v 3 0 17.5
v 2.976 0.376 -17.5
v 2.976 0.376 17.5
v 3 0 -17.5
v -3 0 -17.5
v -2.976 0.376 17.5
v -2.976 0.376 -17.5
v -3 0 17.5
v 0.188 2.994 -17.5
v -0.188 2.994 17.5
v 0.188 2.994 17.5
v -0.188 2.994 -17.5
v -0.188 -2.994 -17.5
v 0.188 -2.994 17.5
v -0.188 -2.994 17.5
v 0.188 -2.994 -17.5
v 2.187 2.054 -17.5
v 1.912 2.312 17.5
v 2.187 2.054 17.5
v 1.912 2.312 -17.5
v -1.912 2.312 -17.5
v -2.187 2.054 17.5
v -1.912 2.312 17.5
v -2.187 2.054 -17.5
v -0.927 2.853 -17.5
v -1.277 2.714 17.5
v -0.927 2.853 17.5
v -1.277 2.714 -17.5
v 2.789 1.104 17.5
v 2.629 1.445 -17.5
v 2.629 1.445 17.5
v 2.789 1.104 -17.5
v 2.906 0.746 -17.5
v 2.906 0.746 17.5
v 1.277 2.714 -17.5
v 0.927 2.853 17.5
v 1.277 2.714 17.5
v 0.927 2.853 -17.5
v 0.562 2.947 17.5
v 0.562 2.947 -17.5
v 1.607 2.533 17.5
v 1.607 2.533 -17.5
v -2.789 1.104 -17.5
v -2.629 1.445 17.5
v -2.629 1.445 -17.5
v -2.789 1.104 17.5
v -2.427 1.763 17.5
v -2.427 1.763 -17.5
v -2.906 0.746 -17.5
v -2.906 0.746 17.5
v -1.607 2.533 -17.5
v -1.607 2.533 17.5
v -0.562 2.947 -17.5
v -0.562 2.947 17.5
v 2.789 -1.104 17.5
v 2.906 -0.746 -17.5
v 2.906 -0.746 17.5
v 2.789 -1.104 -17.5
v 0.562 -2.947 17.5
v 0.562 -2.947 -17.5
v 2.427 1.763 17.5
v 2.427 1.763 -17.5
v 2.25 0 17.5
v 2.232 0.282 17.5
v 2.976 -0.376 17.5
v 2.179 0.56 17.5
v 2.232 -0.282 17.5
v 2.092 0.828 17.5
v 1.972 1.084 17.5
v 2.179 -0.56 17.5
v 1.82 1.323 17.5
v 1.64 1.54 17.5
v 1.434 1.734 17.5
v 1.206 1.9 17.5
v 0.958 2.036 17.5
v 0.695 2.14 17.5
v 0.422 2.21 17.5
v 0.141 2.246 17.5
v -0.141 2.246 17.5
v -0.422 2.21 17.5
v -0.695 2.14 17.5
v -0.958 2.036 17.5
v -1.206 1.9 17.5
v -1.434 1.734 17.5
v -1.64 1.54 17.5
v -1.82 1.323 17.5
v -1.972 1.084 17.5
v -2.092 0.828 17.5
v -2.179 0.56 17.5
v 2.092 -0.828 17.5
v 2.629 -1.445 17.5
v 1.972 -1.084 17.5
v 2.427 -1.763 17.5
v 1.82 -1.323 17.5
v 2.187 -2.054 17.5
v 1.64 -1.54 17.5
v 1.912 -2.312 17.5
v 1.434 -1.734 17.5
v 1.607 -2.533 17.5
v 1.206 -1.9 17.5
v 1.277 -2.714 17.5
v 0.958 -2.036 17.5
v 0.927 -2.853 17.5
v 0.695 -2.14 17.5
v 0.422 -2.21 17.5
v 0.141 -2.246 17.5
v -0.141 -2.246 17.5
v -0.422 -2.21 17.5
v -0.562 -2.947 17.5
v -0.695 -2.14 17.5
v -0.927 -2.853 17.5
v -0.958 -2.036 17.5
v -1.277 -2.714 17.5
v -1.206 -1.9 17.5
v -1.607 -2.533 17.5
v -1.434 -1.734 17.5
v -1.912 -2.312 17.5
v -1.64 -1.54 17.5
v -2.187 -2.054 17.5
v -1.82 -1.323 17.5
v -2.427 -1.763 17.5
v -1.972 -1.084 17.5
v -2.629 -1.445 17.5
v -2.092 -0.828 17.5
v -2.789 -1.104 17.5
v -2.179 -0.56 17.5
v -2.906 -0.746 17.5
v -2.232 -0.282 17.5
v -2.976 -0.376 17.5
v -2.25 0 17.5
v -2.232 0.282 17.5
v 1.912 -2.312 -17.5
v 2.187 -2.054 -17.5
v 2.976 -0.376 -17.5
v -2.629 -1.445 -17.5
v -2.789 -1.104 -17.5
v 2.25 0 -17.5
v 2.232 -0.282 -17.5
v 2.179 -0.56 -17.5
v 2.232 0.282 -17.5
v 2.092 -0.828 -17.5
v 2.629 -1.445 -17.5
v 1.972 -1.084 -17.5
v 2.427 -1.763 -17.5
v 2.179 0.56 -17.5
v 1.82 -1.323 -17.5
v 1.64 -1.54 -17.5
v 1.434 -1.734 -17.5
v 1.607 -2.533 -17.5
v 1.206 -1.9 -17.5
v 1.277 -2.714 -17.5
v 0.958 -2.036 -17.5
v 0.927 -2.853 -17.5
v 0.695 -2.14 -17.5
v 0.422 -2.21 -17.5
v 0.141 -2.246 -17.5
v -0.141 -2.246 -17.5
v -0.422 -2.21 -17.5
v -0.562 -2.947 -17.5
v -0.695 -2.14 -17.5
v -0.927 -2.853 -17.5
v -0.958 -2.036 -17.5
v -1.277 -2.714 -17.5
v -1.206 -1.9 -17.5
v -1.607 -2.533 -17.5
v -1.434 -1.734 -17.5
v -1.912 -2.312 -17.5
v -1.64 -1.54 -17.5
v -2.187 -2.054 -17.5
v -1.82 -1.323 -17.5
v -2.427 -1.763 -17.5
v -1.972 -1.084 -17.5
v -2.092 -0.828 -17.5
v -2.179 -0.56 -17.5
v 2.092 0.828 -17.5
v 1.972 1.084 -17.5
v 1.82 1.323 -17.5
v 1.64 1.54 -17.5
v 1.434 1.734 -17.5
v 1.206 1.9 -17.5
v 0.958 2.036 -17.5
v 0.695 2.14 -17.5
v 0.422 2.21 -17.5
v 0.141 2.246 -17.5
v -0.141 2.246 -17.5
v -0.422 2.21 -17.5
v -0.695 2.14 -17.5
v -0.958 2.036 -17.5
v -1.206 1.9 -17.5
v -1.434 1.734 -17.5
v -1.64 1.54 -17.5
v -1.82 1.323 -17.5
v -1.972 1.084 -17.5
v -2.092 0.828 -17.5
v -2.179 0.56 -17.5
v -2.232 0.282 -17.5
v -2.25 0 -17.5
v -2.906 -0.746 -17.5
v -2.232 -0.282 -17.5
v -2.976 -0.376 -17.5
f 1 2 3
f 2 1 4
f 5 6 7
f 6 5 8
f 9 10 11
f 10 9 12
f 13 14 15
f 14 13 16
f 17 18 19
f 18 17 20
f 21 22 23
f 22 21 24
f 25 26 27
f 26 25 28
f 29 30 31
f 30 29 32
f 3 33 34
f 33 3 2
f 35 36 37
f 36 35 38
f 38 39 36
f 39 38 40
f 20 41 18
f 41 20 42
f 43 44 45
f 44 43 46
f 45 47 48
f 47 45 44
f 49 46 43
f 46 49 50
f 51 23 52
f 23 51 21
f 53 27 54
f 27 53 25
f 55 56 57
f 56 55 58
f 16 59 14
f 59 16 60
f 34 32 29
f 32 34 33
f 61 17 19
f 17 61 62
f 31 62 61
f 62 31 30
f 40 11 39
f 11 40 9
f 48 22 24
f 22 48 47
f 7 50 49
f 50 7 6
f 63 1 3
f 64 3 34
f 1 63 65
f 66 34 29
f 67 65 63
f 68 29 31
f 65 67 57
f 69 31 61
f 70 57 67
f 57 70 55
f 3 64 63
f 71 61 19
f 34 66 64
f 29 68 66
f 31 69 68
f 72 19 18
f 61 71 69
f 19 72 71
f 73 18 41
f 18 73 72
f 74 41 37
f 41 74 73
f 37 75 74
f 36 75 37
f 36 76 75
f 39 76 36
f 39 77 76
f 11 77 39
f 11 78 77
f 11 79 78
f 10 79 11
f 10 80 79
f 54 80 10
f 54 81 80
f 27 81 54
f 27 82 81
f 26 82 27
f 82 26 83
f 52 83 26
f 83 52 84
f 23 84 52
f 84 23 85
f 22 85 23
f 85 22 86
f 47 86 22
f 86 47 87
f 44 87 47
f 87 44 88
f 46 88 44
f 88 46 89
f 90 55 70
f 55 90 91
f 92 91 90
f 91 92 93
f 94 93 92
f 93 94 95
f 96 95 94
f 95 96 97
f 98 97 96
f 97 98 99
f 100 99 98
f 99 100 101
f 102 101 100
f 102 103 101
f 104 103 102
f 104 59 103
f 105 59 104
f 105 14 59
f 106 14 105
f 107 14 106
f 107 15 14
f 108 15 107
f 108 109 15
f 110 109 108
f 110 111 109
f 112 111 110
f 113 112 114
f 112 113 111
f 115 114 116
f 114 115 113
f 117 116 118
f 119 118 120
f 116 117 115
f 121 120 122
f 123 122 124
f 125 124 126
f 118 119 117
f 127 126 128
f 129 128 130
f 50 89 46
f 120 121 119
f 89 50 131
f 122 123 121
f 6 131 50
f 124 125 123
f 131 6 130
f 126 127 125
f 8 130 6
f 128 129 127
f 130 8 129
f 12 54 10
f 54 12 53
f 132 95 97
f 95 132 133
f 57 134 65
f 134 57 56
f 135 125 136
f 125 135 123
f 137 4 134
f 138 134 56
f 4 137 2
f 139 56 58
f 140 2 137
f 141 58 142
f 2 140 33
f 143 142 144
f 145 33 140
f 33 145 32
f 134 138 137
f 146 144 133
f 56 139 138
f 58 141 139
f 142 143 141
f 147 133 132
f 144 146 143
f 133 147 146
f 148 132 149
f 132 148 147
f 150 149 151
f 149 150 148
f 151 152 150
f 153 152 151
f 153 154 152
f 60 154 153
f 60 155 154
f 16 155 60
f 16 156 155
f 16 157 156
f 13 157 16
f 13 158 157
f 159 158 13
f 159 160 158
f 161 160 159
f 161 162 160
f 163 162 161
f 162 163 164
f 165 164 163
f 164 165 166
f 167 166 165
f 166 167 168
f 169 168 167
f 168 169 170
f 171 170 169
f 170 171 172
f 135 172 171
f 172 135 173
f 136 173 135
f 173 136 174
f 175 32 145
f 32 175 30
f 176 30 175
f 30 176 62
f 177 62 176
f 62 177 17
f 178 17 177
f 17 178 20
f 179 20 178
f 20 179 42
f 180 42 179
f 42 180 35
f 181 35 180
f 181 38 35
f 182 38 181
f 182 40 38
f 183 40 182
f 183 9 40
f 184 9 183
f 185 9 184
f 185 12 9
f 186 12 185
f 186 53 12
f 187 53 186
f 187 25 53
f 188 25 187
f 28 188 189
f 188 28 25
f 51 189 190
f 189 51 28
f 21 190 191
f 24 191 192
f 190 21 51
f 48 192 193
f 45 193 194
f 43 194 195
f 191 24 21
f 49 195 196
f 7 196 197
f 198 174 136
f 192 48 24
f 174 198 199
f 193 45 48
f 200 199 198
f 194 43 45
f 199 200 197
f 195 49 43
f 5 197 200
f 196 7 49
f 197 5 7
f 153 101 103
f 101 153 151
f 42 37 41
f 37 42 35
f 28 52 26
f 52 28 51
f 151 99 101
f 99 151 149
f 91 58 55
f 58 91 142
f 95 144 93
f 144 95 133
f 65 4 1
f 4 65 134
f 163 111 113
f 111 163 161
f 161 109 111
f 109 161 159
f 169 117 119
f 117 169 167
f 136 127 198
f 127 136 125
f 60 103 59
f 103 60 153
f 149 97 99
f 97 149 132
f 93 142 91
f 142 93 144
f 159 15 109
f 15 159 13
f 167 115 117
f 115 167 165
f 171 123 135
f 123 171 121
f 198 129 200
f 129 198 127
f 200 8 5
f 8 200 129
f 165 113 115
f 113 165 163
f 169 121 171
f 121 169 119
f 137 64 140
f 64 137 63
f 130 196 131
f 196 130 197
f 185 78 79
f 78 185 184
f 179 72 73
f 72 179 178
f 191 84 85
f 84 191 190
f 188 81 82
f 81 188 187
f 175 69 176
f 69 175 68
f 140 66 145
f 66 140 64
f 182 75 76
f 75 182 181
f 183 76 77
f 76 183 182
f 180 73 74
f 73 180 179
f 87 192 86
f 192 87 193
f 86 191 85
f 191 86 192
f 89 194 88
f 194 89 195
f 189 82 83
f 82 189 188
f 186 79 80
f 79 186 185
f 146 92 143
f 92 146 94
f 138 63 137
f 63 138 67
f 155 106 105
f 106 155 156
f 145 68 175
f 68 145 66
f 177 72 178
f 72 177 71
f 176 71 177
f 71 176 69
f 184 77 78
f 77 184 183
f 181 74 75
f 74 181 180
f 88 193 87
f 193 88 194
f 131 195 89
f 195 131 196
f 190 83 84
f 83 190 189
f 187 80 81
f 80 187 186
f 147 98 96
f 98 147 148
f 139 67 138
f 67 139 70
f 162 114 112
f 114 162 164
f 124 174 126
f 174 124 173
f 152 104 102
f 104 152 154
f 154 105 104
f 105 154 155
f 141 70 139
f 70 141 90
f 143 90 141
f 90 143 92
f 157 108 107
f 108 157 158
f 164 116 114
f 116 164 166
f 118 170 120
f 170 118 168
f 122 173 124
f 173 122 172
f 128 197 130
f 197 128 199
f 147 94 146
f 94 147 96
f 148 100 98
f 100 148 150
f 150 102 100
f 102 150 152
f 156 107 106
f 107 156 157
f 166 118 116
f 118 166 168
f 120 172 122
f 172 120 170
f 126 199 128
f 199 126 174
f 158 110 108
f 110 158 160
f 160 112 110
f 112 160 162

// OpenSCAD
$fn = 50;


difference() {
	union() {
		translate(v = [0, 0, -17.5000000000]) {
			cylinder(h = 35, r = 3.0000000000);
		}
	}
	union() {
		translate(v = [0, 0, -100.0000000000]) {
			cylinder(h = 200, r = 2.2500000000);
		}
	}
}
